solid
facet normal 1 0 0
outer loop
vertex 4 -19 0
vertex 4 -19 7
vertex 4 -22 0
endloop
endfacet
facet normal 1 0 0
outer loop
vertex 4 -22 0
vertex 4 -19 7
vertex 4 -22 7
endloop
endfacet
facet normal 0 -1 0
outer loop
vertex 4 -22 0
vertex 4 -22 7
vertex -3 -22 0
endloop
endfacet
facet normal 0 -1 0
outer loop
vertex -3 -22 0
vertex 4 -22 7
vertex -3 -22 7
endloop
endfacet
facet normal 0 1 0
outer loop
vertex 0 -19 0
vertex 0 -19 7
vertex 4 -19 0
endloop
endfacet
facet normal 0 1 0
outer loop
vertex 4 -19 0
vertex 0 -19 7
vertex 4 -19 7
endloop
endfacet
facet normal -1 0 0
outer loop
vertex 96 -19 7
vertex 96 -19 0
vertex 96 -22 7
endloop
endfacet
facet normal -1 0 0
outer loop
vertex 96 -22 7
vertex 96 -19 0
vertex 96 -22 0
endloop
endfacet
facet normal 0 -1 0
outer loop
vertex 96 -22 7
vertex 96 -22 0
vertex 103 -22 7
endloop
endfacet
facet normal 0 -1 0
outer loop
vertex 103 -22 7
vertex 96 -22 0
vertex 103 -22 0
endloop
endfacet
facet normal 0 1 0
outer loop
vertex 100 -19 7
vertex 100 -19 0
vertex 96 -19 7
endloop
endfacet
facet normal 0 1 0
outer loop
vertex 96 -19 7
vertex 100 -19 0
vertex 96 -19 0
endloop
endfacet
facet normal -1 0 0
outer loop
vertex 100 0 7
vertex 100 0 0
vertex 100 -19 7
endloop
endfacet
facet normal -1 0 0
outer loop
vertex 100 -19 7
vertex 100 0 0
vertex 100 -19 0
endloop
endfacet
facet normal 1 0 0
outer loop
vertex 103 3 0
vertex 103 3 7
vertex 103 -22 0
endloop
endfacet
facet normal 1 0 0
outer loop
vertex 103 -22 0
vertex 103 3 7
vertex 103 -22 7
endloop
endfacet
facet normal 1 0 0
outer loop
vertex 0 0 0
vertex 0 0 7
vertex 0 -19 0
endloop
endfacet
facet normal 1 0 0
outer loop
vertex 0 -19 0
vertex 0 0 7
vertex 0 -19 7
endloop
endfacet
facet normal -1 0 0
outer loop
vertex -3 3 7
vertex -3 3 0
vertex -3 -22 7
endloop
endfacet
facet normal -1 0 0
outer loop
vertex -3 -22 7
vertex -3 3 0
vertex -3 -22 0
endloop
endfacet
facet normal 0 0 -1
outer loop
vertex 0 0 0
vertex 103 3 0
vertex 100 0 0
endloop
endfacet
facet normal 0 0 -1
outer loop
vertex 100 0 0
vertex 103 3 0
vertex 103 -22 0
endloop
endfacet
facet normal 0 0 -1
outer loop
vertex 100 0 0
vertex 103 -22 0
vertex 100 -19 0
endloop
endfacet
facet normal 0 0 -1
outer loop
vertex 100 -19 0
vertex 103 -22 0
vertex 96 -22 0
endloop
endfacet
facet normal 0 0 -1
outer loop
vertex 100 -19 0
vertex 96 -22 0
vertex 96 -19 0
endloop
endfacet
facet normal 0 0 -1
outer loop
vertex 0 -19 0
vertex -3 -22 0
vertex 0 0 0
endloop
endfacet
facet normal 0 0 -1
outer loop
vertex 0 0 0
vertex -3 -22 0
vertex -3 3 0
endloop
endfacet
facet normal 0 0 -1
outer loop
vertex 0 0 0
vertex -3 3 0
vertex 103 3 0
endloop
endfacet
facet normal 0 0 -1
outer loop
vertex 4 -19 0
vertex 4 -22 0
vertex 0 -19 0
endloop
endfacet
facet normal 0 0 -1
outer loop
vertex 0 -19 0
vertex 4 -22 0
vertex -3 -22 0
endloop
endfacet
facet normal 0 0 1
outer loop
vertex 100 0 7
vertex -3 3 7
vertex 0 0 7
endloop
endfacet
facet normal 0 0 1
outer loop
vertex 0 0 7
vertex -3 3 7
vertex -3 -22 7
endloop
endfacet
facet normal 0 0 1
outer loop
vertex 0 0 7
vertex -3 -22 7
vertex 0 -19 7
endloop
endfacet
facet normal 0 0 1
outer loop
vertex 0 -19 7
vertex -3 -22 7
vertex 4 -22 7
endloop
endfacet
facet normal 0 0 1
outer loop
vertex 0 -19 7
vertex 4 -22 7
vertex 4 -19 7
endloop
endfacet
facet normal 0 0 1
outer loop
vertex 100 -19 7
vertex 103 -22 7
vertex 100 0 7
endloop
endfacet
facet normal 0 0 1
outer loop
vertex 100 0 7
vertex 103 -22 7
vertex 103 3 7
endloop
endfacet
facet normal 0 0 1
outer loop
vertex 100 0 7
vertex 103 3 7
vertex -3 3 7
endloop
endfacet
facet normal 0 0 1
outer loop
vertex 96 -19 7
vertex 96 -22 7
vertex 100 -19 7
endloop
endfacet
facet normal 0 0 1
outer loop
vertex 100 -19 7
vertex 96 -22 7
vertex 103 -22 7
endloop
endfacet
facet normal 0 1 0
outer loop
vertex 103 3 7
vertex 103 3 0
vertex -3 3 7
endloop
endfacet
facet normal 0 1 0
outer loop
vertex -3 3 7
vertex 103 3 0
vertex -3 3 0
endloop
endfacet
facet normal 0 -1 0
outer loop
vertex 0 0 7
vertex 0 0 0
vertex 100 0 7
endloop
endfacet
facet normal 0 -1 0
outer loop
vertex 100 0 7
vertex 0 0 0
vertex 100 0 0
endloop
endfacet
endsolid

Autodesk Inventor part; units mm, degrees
ref_plane "YZ Plane" through (0, 0, 0) normal (1, 0, 0) x (0, 1, 0)
ref_plane "XZ Plane" through (0, 0, 0) normal (0, 1, 0) x (-1, 0, 0)
ref_plane "XY Plane" through (0, 0, 0) normal (0, 0, 1) x (1, 0, 0)
sketch "Szkic1" plane through (0, 0, 0) normal (0, 1, 0) x (-1, 0, 0)
  point P0 (0, 0)
sketch "Szkic2" plane through (0, 0, 0) normal (0, 1, 0) x (-1, 0, 0)
  line L0 (0, 0) -> (-100, 0)
  line L1 (-100, 0) -> (-100, 7)
  line L2 (-100, 7) -> (0, 7)
  line L3 (0, 7) -> (0, 0)
  dimension "d0" = 100
  dimension "d1" = 7
extrude "Wyciągnięcie proste1" add sketch "Szkic2" along normal blind 3
sketch "Szkic3" plane through (0, 3, 0) normal (0, 1, 0) x (1, 0, 0)
  line L0 (0, 0) -> (-3, 0)
  line L1 (-3, 0) -> (-3, -7)
  line L2 (-3, -7) -> (0, -7)
  line L3 (0, -7) -> (0, 0)
  line L4 (100, -7) -> (100, 0) projected
  line L5 (100, 0) -> (103, 0)
  line L6 (103, 0) -> (103, -7)
  line L7 (103, -7) -> (100, -7)
  line L8 (100, -7) -> (100, 0)
  dimension "d4" = 3
  dimension "d5" = 7
  dimension "d6" = 3
extrude "Wyciągnięcie proste2" add sketch "Szkic3" against normal blind 22
sketch "Szkic4" plane through (0, -19, 0) normal (0, -1, 0) x (1, 0, 0)
  line L0 (-3, 0) -> (0, 0) projected
  line L1 (-3, 0) -> (4, 0)
  line L2 (4, 0) -> (4, 7)
  line L3 (4, 7) -> (-3, 7)
  line L4 (-3, 7) -> (-3, 0)
  line L5 (100, 0) -> (103, 0) projected
  line L6 (103, 0) -> (96, 0)
  line L7 (96, 0) -> (96, 7)
  line L8 (96, 7) -> (103, 7)
  line L9 (103, 7) -> (103, 0)
  dimension "d9" = 7
  dimension "d10" = 7
extrude "Wyciągnięcie proste3" add sketch "Szkic4" along normal blind 3
properties part number "uchwyt"
